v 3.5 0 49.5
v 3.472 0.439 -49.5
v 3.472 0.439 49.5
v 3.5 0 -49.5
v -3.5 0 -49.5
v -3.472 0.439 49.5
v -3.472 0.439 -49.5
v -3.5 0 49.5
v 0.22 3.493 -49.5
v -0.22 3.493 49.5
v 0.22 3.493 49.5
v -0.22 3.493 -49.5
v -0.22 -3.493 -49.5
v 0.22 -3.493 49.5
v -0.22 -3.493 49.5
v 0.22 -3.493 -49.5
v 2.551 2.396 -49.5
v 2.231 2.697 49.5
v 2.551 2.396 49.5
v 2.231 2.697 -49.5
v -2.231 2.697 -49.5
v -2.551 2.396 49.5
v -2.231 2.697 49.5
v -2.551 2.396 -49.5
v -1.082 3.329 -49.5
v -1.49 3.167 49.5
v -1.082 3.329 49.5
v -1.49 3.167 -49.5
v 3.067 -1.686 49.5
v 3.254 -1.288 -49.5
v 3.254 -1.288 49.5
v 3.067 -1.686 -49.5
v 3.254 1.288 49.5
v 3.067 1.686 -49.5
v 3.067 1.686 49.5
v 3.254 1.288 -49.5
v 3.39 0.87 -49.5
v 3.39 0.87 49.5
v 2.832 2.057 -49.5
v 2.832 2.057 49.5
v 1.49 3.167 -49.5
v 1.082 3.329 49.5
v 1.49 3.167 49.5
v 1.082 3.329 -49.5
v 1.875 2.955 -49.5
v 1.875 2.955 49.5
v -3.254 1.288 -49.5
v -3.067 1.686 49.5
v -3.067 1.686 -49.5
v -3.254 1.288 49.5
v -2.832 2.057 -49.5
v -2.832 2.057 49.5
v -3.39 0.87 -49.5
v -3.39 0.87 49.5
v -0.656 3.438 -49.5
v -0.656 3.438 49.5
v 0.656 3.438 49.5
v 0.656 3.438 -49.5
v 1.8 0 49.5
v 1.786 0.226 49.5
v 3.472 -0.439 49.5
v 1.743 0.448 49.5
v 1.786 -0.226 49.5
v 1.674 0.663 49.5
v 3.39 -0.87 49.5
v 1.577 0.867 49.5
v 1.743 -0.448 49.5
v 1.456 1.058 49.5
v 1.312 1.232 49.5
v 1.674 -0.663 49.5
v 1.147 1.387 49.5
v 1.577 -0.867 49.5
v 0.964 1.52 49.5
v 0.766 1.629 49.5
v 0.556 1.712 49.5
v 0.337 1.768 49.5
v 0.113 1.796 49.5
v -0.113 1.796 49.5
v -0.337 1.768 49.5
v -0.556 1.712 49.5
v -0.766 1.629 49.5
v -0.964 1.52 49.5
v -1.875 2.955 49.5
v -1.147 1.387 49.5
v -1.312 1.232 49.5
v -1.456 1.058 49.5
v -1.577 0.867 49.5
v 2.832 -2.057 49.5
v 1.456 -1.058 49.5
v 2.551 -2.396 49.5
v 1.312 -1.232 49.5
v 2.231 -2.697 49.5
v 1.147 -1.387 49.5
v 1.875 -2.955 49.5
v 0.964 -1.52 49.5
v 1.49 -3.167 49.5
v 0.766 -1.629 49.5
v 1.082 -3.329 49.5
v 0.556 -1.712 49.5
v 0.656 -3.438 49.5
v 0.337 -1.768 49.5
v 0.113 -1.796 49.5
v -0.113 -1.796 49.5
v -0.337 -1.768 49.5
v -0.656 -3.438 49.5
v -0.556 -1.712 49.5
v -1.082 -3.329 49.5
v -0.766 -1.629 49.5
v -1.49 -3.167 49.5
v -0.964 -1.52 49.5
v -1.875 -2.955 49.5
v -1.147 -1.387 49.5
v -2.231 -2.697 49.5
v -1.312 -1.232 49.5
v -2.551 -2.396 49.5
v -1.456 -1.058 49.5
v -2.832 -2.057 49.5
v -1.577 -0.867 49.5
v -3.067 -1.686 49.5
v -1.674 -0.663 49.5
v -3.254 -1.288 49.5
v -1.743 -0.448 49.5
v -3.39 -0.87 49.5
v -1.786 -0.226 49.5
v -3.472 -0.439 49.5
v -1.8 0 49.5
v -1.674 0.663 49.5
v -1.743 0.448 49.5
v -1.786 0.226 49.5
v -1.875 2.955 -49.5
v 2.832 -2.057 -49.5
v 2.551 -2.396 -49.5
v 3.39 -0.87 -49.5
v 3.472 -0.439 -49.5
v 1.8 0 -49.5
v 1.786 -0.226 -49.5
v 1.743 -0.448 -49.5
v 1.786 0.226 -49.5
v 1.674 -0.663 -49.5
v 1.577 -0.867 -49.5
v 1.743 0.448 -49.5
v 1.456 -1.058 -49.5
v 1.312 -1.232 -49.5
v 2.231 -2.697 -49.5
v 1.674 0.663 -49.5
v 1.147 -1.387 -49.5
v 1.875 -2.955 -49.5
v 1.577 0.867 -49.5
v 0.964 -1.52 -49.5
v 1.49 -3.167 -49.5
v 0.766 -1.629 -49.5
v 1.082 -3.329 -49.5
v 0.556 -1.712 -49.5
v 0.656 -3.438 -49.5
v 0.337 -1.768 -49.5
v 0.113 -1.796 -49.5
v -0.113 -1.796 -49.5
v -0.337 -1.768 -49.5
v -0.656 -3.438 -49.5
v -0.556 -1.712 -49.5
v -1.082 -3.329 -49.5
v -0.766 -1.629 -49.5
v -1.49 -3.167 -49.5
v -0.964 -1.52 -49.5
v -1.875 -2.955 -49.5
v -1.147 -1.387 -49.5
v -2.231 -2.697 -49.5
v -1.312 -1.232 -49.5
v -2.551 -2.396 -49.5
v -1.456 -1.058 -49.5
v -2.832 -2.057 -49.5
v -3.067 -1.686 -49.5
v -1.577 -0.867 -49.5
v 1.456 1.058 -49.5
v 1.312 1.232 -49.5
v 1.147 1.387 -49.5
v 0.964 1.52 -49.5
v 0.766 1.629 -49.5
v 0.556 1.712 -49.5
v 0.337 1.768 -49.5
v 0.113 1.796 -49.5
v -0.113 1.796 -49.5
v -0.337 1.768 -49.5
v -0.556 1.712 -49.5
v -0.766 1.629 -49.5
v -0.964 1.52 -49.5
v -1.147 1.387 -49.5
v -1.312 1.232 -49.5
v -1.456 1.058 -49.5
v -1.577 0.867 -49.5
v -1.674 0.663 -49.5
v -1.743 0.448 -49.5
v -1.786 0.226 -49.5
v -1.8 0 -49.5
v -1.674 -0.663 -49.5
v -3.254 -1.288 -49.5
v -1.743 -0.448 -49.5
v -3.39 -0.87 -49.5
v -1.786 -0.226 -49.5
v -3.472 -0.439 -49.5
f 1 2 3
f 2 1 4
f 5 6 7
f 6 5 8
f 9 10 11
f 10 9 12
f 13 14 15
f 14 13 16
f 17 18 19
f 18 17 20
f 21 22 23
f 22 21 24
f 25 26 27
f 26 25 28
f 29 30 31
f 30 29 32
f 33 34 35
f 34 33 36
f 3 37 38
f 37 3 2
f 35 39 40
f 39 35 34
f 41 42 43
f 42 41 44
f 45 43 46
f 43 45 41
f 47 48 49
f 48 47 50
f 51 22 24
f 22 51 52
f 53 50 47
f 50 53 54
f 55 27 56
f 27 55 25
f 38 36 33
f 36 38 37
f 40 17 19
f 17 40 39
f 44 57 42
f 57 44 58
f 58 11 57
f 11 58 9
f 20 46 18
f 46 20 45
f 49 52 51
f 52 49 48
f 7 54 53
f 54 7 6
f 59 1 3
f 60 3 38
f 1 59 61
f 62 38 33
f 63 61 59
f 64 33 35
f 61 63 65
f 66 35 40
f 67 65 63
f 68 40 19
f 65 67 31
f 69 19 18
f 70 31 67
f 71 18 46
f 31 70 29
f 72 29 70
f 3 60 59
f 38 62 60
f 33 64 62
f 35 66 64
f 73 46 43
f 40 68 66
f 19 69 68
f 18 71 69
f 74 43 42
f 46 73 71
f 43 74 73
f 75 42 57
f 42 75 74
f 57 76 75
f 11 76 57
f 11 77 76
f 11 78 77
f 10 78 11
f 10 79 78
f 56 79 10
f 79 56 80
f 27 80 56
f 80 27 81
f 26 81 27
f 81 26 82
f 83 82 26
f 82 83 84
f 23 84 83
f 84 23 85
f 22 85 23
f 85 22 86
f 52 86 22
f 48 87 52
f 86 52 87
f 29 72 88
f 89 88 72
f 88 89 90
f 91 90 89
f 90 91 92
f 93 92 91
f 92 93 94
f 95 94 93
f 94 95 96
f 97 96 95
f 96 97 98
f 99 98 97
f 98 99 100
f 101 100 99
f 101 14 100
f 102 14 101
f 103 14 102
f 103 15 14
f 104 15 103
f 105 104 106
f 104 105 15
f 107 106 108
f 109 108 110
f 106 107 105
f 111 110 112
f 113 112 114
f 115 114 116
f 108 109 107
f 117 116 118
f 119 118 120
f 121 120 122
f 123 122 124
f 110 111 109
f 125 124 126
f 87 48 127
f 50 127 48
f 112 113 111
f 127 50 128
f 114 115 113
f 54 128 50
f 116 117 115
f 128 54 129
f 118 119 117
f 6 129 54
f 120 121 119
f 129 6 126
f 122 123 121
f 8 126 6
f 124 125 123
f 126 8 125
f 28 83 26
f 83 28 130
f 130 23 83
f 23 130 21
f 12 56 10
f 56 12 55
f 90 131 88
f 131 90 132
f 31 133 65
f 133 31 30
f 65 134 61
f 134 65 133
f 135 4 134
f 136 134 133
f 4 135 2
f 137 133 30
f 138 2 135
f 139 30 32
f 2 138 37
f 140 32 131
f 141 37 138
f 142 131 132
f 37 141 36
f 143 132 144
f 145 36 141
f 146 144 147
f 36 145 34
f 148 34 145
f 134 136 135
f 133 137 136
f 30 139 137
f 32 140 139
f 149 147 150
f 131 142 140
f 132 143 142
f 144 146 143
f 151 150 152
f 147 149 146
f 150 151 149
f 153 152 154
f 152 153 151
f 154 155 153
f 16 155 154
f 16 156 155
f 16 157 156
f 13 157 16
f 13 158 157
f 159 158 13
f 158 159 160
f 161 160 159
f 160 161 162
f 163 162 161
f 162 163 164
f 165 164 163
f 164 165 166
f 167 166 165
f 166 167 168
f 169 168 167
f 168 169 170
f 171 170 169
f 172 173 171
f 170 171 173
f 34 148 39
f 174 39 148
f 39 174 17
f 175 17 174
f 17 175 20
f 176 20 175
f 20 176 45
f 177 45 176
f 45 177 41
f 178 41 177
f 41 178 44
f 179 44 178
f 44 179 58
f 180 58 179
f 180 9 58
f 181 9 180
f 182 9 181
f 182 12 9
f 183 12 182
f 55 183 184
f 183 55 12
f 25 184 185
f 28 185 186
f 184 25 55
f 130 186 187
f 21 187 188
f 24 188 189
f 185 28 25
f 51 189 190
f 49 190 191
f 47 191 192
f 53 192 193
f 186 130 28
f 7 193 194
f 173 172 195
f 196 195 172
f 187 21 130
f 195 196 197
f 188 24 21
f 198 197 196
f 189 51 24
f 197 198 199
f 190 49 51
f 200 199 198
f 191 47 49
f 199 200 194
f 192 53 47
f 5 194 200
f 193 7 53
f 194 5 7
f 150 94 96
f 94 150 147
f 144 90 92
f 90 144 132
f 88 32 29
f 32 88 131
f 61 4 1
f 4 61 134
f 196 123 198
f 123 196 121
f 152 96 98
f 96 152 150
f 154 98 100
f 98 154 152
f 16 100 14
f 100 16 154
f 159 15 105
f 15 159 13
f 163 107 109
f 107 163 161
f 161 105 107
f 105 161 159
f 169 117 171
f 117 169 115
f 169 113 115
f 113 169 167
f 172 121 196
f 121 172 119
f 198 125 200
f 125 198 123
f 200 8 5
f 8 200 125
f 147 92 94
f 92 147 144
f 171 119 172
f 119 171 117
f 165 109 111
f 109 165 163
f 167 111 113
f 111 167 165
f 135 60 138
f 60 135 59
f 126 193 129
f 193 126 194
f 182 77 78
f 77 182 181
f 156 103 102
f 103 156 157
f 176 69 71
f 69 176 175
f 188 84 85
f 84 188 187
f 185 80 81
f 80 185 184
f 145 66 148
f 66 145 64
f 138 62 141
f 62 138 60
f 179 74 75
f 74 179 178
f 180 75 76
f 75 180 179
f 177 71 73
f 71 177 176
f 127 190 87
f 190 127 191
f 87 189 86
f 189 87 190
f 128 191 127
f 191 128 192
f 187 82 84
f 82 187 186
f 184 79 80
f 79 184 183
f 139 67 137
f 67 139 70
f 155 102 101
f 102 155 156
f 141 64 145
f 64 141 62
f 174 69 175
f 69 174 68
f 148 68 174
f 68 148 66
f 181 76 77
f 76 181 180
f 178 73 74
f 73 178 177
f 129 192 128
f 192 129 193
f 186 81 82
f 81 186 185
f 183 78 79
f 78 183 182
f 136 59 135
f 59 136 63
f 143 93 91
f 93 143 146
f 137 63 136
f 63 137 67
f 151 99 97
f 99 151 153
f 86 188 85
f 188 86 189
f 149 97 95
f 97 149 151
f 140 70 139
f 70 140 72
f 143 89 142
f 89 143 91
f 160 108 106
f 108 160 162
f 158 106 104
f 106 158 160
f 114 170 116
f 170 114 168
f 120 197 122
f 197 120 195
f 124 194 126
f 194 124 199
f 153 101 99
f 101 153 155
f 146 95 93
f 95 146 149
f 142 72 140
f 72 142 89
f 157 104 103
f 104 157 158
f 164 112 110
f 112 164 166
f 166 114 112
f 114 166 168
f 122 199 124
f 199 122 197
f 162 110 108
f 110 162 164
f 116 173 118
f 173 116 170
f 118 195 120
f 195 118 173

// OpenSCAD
$fn = 50;


difference() {
	union() {
		translate(v = [0, 0, -49.5000000000]) {
			cylinder(h = 99, r = 3.5000000000);
		}
	}
	union() {
		translate(v = [0, 0, -100.0000000000]) {
			cylinder(h = 200, r = 1.8000000000);
		}
	}
}
